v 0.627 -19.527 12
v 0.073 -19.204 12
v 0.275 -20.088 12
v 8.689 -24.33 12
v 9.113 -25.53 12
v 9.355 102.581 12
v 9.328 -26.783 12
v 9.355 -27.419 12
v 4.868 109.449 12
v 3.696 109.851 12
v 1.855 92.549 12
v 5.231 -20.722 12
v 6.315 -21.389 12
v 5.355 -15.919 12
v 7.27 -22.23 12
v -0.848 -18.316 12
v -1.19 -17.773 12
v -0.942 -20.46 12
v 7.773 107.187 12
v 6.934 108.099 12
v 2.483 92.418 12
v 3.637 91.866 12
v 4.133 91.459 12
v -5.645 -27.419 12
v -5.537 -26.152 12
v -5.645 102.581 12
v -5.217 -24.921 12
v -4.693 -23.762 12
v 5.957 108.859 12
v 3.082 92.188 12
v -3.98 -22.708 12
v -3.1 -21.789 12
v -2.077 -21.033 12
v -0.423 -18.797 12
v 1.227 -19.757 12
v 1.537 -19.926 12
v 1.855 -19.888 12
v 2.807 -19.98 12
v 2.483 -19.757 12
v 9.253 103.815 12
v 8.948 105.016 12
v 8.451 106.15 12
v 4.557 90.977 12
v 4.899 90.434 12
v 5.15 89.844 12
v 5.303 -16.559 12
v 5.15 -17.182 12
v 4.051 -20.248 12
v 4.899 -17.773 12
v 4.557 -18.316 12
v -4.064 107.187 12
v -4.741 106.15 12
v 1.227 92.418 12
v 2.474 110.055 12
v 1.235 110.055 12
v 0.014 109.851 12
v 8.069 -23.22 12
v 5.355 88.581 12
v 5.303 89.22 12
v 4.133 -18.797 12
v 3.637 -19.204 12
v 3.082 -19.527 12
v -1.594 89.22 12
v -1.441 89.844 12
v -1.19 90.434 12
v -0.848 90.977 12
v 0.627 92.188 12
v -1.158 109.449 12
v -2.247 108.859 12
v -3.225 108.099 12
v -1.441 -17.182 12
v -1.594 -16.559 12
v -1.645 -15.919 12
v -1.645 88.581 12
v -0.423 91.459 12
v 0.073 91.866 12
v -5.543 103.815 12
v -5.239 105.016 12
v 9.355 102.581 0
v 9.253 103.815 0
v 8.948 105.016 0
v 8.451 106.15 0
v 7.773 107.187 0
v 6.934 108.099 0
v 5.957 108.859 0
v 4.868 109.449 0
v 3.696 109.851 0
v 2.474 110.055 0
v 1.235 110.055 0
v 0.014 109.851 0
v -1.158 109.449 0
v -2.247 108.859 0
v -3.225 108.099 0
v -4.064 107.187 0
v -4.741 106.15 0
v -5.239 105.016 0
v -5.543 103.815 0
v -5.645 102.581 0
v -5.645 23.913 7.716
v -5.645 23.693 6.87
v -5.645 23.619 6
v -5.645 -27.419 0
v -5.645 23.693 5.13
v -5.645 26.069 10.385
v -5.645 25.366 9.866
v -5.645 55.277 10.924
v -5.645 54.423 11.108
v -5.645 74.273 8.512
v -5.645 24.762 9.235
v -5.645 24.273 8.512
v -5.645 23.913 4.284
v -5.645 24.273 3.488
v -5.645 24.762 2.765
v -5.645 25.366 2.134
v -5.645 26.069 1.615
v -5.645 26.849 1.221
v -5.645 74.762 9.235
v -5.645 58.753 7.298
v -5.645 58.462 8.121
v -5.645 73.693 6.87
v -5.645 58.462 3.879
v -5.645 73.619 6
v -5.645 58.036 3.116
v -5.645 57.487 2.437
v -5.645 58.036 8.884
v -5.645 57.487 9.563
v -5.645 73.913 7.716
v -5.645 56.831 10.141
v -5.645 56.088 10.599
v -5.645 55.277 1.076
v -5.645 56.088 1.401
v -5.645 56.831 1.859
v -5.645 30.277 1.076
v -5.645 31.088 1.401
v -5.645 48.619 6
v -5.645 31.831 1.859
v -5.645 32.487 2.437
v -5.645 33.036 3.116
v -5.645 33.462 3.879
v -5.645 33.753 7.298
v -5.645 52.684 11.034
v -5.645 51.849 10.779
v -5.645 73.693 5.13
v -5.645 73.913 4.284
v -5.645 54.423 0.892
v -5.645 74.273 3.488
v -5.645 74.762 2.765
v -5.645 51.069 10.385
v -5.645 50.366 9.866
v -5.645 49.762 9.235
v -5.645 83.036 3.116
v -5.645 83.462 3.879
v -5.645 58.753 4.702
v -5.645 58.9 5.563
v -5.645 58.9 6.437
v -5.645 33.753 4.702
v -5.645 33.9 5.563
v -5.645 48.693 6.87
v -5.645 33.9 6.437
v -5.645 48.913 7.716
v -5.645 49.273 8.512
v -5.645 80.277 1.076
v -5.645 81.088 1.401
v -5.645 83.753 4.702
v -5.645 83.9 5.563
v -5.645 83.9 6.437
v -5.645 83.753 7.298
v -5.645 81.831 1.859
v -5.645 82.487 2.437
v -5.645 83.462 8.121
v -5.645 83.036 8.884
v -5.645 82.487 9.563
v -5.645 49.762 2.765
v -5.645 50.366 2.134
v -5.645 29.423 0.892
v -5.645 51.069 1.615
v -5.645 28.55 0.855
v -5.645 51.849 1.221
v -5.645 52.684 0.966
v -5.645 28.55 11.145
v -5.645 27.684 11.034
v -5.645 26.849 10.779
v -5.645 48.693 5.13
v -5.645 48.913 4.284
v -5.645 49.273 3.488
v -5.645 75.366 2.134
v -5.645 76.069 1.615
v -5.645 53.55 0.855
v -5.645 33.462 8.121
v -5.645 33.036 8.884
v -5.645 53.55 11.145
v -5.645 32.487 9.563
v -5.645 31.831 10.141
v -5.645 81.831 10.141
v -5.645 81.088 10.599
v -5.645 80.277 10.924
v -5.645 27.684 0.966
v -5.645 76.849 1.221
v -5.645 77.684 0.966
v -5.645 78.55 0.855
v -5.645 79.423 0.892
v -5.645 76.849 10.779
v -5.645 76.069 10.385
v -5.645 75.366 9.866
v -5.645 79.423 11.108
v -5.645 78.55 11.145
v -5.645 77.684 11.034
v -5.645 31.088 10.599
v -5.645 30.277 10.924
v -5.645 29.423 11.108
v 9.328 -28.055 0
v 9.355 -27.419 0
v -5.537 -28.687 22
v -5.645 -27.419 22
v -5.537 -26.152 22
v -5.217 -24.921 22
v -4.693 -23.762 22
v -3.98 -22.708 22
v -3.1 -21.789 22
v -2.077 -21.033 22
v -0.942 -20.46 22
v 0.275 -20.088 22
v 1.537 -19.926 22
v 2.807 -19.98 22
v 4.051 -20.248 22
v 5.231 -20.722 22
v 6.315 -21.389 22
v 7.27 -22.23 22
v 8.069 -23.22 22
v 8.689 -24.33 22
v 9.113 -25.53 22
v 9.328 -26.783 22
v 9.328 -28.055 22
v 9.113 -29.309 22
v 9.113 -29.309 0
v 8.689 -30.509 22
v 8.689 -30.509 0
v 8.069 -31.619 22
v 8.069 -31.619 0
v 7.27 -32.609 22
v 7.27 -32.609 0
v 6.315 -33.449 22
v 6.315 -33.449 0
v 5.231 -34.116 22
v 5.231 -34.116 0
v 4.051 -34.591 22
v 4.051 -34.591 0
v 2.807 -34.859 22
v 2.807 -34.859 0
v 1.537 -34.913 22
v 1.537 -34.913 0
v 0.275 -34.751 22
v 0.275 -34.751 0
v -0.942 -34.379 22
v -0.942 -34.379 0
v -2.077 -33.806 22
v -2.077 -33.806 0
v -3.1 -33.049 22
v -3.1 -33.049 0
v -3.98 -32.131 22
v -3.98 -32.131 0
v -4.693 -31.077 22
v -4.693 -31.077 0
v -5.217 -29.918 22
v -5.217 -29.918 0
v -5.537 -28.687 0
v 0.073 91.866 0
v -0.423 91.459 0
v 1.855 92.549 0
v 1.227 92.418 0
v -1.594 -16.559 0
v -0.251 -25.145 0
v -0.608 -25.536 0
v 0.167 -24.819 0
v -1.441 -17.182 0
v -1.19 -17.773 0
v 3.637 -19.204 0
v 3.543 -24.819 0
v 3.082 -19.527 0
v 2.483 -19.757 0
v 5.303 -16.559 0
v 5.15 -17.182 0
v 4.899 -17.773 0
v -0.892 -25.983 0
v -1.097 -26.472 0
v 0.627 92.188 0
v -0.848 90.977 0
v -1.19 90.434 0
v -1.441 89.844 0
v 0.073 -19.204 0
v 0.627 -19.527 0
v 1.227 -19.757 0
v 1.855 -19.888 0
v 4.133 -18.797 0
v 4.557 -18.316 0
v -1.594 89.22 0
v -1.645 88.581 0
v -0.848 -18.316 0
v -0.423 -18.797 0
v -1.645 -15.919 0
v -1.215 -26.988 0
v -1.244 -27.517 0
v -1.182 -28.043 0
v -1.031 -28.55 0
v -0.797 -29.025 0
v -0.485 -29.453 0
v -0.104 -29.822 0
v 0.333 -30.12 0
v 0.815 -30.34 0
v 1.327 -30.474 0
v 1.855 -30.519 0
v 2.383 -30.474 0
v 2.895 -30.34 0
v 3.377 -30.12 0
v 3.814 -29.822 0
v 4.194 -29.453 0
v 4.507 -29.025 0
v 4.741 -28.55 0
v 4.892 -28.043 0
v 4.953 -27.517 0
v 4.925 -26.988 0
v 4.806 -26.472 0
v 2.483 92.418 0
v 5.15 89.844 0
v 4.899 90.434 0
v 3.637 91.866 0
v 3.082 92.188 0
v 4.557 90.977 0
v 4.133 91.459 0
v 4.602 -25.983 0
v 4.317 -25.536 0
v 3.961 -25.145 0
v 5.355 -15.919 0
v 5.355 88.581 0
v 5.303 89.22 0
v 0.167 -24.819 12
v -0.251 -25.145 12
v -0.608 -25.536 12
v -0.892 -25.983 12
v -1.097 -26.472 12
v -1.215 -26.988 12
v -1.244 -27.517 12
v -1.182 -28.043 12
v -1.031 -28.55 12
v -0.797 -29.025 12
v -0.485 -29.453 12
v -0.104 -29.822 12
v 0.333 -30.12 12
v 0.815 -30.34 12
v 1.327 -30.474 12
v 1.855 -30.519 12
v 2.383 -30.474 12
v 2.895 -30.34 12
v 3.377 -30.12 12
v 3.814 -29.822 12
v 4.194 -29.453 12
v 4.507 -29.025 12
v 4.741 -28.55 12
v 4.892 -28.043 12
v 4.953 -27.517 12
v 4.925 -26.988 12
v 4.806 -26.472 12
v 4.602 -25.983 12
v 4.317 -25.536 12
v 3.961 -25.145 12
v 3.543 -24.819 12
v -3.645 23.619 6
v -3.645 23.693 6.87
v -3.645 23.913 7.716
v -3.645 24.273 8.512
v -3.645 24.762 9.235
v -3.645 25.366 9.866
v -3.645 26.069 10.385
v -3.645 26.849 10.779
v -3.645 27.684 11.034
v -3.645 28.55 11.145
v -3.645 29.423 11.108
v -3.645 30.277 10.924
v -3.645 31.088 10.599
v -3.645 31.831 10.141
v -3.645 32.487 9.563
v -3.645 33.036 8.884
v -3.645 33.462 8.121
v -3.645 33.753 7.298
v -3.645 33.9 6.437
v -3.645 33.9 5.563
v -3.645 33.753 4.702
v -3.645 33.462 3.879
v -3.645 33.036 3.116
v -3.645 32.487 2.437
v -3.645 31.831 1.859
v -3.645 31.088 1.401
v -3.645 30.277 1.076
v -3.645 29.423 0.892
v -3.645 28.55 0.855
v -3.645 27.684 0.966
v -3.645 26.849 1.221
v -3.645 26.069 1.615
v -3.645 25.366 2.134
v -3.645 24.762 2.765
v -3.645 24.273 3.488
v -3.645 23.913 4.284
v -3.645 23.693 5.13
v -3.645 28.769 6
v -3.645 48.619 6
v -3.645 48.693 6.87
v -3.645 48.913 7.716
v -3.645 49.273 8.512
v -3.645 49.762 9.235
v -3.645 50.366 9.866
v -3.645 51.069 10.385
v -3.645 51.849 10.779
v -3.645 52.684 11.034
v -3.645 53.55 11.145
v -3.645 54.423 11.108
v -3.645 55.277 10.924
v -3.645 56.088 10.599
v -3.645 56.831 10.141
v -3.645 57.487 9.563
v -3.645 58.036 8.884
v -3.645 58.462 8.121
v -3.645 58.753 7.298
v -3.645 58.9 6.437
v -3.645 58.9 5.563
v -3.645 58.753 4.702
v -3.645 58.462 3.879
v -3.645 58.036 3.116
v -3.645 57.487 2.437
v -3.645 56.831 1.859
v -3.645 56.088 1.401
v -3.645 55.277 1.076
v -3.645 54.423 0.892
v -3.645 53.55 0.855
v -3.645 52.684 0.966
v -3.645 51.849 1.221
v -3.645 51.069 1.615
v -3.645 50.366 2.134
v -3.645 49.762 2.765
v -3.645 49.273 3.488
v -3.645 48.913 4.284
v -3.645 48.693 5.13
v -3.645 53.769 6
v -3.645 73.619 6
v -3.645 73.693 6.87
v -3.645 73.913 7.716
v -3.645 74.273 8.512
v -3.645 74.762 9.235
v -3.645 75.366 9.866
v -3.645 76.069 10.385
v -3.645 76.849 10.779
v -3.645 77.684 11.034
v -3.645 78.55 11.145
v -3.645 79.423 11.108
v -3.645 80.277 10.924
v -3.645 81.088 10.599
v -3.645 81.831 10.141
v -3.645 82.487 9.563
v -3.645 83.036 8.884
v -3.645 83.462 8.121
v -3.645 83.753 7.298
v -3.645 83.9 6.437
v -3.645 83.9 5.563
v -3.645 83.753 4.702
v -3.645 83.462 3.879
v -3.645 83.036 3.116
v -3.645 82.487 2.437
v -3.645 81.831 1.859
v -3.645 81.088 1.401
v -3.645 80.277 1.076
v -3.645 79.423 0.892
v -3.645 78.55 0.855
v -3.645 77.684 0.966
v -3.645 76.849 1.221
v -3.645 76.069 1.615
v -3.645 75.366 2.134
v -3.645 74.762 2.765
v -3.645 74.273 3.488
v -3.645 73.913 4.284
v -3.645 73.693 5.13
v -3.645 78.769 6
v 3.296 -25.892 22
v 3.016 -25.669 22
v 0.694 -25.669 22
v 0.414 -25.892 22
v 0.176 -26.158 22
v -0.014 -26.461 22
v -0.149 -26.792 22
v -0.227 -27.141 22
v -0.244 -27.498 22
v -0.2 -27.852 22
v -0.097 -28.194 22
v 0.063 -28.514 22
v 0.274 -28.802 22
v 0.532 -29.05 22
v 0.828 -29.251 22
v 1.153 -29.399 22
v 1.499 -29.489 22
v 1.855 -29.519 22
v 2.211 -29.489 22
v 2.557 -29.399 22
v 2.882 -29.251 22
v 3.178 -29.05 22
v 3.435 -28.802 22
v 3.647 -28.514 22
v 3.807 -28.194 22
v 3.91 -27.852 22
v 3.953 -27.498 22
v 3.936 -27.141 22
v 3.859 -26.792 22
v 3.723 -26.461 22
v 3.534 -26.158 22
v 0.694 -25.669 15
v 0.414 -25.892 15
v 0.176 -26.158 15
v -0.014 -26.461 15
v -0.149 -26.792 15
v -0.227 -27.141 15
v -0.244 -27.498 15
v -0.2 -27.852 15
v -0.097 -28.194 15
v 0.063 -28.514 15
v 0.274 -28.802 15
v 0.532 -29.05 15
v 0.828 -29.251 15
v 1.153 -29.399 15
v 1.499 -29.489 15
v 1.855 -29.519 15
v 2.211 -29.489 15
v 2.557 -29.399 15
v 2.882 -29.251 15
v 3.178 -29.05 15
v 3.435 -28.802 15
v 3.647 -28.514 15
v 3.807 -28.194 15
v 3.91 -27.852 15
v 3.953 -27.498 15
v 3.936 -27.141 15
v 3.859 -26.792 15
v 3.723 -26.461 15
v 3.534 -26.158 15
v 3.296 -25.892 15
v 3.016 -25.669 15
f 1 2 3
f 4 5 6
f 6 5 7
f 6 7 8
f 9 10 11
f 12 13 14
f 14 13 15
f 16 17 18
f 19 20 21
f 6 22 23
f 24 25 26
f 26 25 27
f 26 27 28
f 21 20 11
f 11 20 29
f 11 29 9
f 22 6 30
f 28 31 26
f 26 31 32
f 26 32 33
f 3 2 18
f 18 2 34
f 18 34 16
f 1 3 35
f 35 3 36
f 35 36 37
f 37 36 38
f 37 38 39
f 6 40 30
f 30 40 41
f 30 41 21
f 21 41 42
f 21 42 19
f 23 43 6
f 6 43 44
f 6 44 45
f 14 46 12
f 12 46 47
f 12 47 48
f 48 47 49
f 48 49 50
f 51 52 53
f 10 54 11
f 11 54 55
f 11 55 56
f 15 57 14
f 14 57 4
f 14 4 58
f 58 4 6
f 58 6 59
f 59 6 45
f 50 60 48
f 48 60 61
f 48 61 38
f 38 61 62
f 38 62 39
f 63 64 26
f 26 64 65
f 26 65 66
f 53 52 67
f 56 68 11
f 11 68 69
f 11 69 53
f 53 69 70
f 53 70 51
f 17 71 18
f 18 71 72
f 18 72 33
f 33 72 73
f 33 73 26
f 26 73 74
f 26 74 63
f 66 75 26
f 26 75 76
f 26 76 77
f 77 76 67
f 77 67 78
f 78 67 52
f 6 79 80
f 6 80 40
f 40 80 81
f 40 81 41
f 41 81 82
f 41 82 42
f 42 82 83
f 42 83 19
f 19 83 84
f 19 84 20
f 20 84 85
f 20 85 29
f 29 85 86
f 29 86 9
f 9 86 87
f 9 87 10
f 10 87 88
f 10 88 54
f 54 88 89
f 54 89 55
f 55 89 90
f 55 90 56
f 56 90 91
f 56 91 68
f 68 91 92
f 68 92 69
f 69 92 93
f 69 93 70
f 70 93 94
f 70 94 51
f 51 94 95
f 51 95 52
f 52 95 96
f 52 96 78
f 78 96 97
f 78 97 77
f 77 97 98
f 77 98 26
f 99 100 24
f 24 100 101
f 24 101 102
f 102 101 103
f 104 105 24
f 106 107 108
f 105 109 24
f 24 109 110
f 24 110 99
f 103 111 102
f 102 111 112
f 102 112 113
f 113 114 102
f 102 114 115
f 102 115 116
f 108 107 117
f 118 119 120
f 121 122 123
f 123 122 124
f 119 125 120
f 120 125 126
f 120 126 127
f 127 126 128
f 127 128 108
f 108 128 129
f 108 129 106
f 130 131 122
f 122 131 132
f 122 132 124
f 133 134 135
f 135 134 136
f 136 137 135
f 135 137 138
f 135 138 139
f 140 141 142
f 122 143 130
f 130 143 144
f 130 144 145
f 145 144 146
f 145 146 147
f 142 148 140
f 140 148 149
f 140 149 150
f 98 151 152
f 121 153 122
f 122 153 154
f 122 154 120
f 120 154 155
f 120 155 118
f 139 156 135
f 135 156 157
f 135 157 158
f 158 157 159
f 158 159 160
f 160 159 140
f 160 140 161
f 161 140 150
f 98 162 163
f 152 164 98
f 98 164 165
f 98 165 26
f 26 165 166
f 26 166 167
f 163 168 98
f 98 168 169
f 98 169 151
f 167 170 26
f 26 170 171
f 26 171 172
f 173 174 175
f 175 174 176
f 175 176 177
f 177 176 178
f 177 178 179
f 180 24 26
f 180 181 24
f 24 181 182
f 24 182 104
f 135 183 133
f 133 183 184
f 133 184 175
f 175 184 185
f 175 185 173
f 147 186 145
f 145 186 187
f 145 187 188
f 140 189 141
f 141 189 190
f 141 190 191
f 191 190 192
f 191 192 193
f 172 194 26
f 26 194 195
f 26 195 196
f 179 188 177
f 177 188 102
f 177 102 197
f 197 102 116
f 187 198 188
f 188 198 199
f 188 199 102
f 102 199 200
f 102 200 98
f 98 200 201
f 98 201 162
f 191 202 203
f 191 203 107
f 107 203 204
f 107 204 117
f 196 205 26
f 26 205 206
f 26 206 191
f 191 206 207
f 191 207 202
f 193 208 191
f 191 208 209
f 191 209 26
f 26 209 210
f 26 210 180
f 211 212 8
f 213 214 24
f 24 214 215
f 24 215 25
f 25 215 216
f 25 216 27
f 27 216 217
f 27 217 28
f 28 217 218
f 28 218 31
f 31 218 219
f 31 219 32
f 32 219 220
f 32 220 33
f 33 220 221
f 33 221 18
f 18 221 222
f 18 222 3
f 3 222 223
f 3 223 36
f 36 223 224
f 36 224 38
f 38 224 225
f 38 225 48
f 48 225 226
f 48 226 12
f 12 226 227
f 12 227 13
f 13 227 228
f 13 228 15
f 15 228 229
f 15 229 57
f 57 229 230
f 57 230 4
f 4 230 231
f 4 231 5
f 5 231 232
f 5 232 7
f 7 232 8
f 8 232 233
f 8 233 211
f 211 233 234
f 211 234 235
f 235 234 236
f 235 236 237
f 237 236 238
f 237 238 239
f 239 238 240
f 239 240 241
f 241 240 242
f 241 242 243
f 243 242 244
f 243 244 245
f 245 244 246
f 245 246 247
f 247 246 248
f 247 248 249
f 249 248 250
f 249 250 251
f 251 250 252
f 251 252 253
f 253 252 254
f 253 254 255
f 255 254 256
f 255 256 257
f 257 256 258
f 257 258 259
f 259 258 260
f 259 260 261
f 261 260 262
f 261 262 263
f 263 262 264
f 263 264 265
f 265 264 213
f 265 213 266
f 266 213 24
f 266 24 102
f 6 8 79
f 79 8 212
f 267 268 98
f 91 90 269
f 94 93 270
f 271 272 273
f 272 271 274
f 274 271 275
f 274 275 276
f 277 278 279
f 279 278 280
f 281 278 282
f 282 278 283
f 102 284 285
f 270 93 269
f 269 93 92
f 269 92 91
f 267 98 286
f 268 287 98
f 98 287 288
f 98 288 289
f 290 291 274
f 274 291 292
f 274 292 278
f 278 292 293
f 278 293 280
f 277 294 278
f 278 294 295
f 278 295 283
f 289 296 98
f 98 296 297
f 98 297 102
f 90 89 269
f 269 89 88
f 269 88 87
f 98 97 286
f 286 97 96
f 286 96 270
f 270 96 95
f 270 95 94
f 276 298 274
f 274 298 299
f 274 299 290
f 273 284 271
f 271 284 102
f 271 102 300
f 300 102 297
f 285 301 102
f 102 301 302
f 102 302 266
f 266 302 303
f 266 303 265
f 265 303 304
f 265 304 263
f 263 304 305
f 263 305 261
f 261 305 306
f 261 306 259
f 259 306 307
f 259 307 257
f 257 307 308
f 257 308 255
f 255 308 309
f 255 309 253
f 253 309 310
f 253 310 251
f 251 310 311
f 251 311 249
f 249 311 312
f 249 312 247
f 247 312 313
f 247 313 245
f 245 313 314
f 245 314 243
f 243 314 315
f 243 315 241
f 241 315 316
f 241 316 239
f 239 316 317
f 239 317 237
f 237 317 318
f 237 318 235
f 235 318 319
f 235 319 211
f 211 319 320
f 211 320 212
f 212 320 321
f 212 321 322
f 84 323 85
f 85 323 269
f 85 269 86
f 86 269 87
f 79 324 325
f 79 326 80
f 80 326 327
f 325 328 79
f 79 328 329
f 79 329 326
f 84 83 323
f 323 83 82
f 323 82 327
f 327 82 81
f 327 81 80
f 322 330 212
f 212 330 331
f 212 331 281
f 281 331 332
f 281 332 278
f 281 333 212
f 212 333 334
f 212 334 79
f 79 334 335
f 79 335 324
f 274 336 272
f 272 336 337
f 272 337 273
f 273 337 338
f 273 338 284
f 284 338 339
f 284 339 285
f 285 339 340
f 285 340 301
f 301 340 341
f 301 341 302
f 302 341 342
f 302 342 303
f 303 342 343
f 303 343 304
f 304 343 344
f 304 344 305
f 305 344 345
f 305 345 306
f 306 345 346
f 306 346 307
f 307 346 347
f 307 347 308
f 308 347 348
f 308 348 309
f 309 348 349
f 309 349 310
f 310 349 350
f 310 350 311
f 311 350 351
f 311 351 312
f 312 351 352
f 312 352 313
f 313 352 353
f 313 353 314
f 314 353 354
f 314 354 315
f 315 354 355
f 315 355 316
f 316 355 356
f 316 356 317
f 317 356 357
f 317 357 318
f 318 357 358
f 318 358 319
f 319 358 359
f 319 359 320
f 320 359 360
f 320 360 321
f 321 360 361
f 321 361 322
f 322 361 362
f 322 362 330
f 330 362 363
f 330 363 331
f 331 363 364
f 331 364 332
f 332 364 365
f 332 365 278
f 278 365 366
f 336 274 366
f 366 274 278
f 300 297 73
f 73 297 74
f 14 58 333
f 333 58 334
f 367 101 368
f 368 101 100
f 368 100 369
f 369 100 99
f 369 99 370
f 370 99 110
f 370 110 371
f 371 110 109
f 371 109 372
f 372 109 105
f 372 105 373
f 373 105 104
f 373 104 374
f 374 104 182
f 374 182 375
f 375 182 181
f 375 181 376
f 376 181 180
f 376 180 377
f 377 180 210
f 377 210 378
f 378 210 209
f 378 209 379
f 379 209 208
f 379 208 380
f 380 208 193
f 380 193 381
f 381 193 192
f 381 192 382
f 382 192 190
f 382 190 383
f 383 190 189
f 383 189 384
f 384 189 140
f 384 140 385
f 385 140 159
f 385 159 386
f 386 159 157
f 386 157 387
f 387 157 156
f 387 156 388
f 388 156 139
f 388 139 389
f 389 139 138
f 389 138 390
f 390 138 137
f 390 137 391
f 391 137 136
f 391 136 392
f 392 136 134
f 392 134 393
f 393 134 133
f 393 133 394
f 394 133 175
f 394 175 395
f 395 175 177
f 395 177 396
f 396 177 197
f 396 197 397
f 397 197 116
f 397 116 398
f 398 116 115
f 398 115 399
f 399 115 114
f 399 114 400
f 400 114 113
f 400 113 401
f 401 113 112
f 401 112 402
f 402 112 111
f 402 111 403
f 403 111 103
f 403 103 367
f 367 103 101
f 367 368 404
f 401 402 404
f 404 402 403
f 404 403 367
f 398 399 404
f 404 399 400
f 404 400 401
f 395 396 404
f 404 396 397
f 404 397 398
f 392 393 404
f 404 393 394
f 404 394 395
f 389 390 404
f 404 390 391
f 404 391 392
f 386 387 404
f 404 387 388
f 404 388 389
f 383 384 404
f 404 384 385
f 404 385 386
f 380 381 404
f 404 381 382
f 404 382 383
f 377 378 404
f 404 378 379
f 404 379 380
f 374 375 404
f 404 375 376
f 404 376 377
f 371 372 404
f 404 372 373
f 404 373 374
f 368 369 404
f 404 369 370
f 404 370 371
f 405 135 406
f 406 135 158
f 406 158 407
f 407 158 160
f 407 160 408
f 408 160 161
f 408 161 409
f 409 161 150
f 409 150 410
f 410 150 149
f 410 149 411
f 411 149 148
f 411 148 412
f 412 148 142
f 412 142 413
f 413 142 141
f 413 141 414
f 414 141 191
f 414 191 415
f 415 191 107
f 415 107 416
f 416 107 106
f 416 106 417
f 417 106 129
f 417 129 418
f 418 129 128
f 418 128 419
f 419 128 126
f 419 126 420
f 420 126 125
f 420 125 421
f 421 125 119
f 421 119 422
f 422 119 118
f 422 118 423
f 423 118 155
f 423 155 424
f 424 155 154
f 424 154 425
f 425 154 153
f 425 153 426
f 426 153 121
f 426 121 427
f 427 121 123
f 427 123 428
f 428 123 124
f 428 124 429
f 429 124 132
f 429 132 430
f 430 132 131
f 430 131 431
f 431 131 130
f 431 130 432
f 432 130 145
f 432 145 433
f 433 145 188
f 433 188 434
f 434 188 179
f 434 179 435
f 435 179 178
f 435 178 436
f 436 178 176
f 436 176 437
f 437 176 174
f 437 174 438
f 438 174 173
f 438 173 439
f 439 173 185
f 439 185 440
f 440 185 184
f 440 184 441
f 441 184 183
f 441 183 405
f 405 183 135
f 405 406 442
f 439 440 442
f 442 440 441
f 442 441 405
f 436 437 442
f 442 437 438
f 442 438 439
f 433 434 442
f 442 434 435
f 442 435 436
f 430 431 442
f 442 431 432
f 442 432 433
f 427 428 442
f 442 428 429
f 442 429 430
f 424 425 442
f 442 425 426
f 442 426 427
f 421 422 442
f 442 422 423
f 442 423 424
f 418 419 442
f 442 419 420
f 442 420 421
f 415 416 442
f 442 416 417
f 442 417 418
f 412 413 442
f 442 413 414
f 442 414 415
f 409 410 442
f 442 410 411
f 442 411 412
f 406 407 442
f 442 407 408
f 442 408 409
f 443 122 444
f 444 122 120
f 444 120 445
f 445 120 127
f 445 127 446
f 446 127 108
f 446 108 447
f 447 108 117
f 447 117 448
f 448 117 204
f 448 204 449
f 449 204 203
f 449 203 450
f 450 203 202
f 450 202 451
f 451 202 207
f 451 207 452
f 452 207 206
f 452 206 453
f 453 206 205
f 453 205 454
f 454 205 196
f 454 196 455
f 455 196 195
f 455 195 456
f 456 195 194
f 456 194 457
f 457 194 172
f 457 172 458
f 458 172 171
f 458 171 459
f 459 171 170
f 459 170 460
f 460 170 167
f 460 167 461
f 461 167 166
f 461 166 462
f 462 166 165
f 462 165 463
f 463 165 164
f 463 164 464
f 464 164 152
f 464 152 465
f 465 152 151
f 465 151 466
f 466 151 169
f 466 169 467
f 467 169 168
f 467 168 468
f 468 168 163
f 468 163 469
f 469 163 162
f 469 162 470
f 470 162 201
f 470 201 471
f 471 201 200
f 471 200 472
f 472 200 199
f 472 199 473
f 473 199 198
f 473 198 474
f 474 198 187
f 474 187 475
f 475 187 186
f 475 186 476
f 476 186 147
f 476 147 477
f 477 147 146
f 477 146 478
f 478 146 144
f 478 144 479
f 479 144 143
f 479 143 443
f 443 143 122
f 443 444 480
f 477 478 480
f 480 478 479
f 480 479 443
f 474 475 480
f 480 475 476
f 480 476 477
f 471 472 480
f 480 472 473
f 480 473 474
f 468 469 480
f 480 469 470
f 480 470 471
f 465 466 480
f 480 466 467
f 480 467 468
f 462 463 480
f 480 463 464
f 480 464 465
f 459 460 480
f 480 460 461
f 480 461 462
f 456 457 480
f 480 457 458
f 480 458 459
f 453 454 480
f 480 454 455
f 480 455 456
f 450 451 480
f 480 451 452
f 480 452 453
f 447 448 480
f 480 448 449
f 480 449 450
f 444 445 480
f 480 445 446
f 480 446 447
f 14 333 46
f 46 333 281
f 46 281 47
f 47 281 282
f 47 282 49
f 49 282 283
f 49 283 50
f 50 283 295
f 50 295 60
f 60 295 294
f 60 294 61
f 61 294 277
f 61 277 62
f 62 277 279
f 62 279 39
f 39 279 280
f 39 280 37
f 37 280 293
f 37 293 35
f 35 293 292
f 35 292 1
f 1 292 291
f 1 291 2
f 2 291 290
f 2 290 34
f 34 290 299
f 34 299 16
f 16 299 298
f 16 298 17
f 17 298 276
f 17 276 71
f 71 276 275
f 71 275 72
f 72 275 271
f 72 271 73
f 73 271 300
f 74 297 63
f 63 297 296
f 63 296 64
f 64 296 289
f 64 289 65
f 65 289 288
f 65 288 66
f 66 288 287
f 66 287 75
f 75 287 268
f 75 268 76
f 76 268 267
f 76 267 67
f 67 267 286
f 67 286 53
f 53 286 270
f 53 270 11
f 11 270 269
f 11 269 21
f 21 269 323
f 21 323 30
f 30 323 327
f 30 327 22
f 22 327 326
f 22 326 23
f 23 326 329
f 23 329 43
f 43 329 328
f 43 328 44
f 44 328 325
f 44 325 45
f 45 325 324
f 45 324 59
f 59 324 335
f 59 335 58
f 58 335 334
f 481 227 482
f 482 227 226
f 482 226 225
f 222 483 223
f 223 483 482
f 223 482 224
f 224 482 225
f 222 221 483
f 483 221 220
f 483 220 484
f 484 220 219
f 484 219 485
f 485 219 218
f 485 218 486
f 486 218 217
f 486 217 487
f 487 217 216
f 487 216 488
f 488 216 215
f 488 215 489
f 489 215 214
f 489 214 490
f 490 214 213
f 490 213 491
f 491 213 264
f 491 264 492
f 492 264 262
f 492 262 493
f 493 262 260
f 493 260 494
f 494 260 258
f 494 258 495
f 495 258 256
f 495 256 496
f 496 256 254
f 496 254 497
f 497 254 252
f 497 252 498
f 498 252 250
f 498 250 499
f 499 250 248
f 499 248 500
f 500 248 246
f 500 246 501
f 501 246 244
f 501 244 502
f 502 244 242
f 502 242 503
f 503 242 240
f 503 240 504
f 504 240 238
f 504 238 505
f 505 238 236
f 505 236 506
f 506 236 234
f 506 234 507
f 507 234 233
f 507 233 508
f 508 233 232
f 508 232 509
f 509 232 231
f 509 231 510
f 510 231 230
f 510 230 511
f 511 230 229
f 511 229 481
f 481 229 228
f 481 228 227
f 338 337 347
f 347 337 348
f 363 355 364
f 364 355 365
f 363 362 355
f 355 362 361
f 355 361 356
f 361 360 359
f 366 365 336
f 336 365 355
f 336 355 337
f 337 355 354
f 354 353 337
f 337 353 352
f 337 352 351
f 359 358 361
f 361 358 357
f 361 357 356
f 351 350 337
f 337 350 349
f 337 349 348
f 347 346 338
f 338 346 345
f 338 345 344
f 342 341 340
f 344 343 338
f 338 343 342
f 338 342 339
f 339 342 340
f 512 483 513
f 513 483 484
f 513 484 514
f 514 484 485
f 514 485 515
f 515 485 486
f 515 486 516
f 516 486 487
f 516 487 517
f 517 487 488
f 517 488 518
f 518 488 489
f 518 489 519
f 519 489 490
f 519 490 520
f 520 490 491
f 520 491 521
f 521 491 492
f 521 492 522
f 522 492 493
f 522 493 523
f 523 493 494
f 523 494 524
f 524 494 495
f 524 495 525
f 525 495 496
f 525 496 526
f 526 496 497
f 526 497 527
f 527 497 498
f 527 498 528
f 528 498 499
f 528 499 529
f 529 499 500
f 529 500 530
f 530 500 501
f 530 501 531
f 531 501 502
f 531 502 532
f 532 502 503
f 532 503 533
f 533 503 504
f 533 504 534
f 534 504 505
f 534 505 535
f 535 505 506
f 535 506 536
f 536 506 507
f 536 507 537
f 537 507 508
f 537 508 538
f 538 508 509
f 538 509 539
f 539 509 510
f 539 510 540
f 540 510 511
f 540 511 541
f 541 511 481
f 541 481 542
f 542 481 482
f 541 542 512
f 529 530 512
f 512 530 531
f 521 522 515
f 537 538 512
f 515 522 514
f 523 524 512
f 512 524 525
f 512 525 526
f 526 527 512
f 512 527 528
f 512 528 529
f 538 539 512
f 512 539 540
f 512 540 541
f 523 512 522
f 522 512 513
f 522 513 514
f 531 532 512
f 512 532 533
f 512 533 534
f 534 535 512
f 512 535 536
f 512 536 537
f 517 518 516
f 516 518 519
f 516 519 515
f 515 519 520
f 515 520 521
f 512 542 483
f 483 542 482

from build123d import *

# Parameters (mm, degrees)
BOSS_EXTRUDE1_DEPTH = 12
SKETCH2_R           = 3.1
BOSS_EXTRUDE2_DEPTH = 15
CUT_EXTRUDE1_START  = -50
CUT_EXTRUDE1_DEPTH  = 50
CUT_EXTRUDE2_START  = -15
CUT_EXTRUDE2_DEPTH  = 15
SKETCH5_W           = 7
SKETCH5_H           = 112.5
CUT_EXTRUDE3_DEPTH  = 12
SKETCH6_R           = 5.15
CUT_EXTRUDE4_DEPTH  = 2
FILLET1_R           = 4
BOSS_EXTRUDE3_DEPTH = 10
SKETCH9_R           = 2.1
CUT_EXTRUDE5_DEPTH  = 7
BOSS_EXTRUDE4_DEPTH = 7


with BuildPart() as part:
    # Sketch1 → Boss-Extrude1 (new body)
    with BuildSketch(Plane.XY):
        with BuildLine():
            Line((-5.64516129, 102.580645161), (-5.64516129, -27.419354839))
            ThreePointArc((-5.64516129, -27.419354839), (1.85483871, -34.919354839), (9.35483871, -27.419354839))
            Line((9.35483871, -27.419354839), (9.35483871, 102.580645161))
            ThreePointArc((9.35483871, 102.580645161), (1.85483871, 110.080645161), (-5.64516129, 102.580645161))
        make_face()
    extrude(amount=BOSS_EXTRUDE1_DEPTH)

    # Sketch2 → Boss-Extrude2 (add)
    with BuildSketch(Plane.XY.offset(12)):
        with Locations(Location((1.85483871, -27.419354839, 0), (0, 0, 180))):
            Circle(SKETCH2_R)
    extrude(amount=BOSS_EXTRUDE2_DEPTH)

    # Sketch3 → Cut-Extrude1 (cut)
    with BuildSketch(Plane.XY.offset(27).offset(CUT_EXTRUDE1_START)):
        with BuildLine():
            Line((0.166644408, -24.819354839), (3.543033011, -24.819354839))
            ThreePointArc((3.543033011, -24.819354839), (1.85483871, -30.519354839), (0.166644408, -24.819354839))
        make_face()
    extrude(amount=CUT_EXTRUDE1_DEPTH, mode=Mode.SUBTRACT)

    # Sketch4 → Cut-Extrude2 (cut)
    with BuildSketch(Plane.XY.offset(27).offset(CUT_EXTRUDE2_START)):
        with BuildLine():
            Line((0.166644408, -24.819354839), (3.543033011, -24.819354839))
            ThreePointArc((3.543033011, -24.819354839), (1.85483871, -24.319354839), (0.166644408, -24.819354839))
        make_face()
    extrude(amount=CUT_EXTRUDE2_DEPTH, mode=Mode.SUBTRACT)

    # Sketch5 → Cut-Extrude3 (cut)
    with BuildSketch(Plane.XY.offset(12)):
        with Locations((1.85483871, 36.330645161)):
            Rectangle(SKETCH5_W, SKETCH5_H)
    extrude(amount=-CUT_EXTRUDE3_DEPTH, mode=Mode.SUBTRACT)

    # Sketch6 → Cut-Extrude4 (cut)
    with BuildSketch(Plane.ZY.offset(5.64516129)):
        with Locations(Location((6, 78.768969581, 0), (0, 0, 270))):
            Circle(SKETCH6_R)
        with Locations(Location((6, 53.768969581, 0), (0, 0, 270))):
            Circle(SKETCH6_R)
        with Locations(Location((6, 28.768969581, 0), (0, 0, 270))):
            Circle(SKETCH6_R)
    extrude(amount=-CUT_EXTRUDE4_DEPTH, mode=Mode.SUBTRACT)

    # Fillet1
    # the kernel refuses this fillet: 4 mm, written as the material it adds along each edge
    with BuildSketch(Plane(origin=(-1.64516129, -19.919354839, 12), x_dir=(0, 1, 0), z_dir=(0, 0, -1)), Plane(origin=(5.35483871, -19.919354839, 12), x_dir=(-1, 0, 0), z_dir=(0, 0, -1)), Plane(origin=(5.35483871, 92.580645161, 12), x_dir=(0, -1, 0), z_dir=(0, 0, -1))) as fillet1_piece_1:
        with BuildLine():
            CenterArc((FILLET1_R, FILLET1_R), FILLET1_R, 180, 90)
            Line((0, FILLET1_R), (0, 0))
            Line((0, 0), (FILLET1_R, 0))
        make_face()
    extrude(amount=12)
    with BuildSketch(Plane(origin=(-1.64516129, 92.580645161, 12), x_dir=(0, -1, 0), z_dir=(0, 0, -1))) as fillet1_piece_2:
        with BuildLine():
            CenterArc((FILLET1_R, -FILLET1_R), FILLET1_R, 90, 90)
            Line((0, -FILLET1_R), (0, 0))
            Line((0, 0), (FILLET1_R, 0))
        make_face()
    extrude(amount=12)

    # Sketch7 → Boss-Extrude3 (add)
    with BuildSketch(Plane.XY.offset(12)):
        with BuildLine():
            ThreePointArc((-5.64516129, -27.419354839), (1.85483871, -34.919354839), (9.35483871, -27.419354839))
            ThreePointArc((9.35483871, -27.419354839), (1.85483871, -19.919354839), (-5.64516129, -27.419354839))
        make_face()
    extrude(amount=BOSS_EXTRUDE3_DEPTH)

    # Sketch9 → Cut-Extrude5 (cut)
    with BuildSketch(Plane.XY.offset(22)):
        with Locations((1.85483871, -27.419354839)):
            Circle(SKETCH9_R)
    extrude(amount=-CUT_EXTRUDE5_DEPTH, mode=Mode.SUBTRACT)

    # Sketch10 → Boss-Extrude4 (add)
    with BuildSketch(Plane.XY.offset(22)):
        with BuildLine():
            Line((0.694020033, -25.669354839), (3.015657386, -25.669354839))
            ThreePointArc((3.015657386, -25.669354839), (1.85483871, -25.319354839), (0.694020033, -25.669354839))
        make_face()
    extrude(amount=-BOSS_EXTRUDE4_DEPTH)


solid = part.part
